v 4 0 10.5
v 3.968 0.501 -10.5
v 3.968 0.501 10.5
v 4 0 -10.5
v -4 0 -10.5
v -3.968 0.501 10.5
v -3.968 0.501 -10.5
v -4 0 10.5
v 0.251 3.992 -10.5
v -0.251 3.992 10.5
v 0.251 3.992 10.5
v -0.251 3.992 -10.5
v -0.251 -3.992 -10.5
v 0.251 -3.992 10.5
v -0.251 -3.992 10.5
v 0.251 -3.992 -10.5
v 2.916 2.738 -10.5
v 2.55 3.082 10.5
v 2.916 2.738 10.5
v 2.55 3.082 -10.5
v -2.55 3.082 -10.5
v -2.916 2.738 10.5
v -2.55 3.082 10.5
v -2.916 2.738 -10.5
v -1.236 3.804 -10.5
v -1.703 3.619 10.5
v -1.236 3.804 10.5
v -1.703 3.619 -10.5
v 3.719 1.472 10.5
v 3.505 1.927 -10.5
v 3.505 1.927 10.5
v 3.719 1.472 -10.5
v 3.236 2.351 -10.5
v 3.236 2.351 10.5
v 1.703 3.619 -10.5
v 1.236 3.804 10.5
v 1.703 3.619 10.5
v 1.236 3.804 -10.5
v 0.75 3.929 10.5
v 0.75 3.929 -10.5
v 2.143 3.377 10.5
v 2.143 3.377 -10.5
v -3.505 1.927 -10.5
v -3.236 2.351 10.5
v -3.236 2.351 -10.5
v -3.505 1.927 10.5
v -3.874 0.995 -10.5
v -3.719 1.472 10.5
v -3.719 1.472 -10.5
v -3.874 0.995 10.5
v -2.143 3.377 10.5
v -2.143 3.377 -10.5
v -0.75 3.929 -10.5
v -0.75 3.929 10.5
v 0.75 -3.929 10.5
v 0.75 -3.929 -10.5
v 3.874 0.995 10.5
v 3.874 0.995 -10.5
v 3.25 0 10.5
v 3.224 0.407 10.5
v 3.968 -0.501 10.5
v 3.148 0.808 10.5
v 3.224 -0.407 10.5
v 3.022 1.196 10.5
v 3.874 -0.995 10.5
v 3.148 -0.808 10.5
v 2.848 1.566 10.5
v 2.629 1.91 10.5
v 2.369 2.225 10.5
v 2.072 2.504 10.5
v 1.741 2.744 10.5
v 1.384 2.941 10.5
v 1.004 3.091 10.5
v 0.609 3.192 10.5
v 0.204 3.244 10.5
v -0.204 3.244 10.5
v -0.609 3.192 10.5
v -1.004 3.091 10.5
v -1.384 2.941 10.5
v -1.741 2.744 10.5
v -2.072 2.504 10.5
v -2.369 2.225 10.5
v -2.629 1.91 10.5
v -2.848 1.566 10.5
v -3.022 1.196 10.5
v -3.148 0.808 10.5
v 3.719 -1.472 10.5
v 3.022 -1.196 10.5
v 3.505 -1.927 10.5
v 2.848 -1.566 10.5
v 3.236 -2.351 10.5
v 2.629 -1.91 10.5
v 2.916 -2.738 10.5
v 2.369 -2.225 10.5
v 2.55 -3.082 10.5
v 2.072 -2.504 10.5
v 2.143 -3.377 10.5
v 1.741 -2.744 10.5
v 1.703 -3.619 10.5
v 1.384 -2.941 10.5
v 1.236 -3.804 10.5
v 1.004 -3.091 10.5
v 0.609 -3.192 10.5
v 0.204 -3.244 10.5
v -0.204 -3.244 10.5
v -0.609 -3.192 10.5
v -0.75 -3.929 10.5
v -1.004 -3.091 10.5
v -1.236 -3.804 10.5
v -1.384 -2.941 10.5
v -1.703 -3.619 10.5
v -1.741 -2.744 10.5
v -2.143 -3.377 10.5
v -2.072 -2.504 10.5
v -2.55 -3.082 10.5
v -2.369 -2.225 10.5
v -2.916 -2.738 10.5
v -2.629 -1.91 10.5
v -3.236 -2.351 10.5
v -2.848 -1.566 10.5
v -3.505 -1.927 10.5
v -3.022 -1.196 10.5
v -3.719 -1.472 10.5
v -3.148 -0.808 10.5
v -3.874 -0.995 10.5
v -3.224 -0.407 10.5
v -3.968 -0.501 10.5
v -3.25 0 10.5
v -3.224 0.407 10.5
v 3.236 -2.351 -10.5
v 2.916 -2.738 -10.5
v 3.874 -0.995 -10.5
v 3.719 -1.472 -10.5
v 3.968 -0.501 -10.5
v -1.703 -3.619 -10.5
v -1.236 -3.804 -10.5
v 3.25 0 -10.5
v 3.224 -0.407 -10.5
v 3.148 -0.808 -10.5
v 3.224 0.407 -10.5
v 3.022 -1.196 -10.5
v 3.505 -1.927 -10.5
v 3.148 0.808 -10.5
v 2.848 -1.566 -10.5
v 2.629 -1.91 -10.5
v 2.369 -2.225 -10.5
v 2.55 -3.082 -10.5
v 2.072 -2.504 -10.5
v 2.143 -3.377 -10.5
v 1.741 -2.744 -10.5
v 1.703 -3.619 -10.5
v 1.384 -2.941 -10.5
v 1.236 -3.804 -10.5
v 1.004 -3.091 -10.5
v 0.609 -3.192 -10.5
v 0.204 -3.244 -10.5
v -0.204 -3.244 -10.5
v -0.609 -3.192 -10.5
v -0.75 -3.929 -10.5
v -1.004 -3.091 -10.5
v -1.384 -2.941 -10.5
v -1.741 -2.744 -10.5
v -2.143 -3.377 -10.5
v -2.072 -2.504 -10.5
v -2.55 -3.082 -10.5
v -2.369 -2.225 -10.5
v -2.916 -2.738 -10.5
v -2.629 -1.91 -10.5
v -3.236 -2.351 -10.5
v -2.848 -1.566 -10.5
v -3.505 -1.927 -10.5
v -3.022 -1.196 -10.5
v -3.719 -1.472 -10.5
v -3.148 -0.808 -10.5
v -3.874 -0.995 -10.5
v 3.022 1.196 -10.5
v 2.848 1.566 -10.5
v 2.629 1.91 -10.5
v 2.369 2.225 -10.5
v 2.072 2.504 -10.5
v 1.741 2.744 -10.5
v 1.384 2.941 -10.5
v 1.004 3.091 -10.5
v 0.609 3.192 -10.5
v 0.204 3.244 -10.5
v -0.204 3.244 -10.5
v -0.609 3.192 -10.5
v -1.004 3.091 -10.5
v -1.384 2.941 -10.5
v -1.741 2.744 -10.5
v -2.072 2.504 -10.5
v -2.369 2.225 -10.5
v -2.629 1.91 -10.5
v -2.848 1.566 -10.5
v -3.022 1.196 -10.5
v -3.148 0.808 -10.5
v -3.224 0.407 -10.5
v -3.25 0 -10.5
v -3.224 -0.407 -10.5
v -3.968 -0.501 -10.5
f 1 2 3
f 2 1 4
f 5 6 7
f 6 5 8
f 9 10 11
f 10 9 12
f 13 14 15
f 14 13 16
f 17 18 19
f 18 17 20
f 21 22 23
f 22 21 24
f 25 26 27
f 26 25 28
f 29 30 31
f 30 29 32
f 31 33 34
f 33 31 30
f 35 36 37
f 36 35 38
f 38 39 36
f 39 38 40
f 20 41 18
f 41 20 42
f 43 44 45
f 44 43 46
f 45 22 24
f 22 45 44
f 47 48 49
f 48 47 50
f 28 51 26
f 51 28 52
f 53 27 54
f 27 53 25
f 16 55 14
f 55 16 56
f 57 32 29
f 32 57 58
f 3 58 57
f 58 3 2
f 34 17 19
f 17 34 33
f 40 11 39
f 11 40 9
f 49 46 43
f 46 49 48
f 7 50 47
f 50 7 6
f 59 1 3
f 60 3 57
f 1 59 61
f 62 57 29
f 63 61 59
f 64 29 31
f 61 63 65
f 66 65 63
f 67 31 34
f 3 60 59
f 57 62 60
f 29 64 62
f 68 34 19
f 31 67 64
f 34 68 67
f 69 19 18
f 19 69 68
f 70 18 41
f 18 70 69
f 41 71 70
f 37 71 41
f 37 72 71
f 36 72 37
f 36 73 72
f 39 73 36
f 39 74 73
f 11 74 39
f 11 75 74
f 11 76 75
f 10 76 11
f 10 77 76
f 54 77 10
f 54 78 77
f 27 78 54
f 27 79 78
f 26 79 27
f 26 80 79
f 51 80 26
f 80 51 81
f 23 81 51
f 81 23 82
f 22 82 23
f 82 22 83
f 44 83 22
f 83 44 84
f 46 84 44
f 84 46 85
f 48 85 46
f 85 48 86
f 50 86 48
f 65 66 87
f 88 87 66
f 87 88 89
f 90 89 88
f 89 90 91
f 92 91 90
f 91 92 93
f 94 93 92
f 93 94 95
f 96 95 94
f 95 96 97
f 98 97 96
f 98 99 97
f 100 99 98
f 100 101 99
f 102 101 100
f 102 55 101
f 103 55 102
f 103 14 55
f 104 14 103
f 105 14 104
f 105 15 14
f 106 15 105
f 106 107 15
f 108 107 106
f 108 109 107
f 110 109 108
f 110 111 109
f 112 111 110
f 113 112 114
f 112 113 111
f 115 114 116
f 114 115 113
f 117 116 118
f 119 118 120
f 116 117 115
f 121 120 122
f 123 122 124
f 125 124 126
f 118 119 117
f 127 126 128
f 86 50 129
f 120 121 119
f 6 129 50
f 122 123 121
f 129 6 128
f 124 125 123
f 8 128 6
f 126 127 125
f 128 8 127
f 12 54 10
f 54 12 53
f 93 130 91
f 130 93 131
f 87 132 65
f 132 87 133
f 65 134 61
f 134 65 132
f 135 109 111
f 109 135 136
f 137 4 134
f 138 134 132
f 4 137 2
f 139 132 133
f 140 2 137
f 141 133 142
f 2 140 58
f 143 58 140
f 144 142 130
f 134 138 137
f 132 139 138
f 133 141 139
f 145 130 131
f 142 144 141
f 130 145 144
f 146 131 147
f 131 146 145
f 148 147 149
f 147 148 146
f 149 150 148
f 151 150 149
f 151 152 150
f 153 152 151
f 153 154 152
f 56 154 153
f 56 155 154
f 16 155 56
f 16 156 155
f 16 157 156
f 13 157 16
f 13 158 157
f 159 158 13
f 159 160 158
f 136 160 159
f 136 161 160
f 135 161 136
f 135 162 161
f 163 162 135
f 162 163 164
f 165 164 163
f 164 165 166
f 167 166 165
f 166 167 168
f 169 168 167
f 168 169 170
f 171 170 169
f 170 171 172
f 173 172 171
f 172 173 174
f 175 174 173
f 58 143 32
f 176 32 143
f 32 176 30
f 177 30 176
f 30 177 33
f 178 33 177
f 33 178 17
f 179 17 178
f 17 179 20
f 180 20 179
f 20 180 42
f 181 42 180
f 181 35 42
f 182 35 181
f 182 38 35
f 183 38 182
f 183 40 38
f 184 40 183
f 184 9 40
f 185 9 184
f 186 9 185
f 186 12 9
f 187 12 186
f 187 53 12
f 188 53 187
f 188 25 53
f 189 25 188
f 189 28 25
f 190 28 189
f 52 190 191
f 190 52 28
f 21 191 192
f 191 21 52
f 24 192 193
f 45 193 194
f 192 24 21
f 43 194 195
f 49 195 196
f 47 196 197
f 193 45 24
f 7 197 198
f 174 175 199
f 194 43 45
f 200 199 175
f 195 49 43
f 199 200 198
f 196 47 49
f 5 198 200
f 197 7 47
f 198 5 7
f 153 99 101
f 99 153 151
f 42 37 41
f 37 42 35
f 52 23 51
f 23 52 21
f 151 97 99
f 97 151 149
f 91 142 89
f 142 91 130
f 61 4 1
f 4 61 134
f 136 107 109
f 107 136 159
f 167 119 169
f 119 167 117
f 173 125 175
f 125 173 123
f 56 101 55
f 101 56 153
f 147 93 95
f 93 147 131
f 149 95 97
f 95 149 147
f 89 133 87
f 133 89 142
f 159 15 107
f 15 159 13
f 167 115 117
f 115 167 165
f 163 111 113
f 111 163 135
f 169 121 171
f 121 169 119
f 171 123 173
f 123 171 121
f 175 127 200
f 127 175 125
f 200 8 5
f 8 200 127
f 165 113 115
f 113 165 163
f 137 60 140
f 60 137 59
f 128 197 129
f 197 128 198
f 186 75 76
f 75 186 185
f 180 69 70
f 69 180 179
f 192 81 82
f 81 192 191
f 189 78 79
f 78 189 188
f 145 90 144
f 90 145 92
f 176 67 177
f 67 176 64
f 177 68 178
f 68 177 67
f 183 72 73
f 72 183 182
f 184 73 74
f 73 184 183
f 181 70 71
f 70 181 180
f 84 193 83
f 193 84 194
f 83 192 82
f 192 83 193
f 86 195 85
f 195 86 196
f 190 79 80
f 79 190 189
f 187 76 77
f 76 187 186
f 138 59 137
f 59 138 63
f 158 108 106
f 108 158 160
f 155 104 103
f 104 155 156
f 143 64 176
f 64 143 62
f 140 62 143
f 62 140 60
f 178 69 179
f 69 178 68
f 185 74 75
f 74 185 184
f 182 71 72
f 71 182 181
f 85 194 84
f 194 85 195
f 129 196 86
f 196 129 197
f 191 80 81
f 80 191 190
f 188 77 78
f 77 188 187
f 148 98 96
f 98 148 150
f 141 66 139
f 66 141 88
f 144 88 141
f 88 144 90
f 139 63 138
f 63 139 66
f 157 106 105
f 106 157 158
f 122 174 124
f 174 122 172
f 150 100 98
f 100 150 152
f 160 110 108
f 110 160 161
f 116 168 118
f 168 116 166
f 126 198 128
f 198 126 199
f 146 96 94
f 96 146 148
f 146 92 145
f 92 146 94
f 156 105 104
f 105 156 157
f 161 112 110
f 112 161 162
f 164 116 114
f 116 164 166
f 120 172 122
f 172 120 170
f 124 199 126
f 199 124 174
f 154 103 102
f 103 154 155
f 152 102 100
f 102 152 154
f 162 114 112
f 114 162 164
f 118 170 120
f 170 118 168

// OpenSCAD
$fn = 50;


difference() {
	union() {
		translate(v = [0, 0, -10.5000000000]) {
			cylinder(h = 21, r = 4.0000000000);
		}
	}
	union() {
		translate(v = [0, 0, -100.0000000000]) {
			cylinder(h = 200, r = 3.2500000000);
		}
	}
}
